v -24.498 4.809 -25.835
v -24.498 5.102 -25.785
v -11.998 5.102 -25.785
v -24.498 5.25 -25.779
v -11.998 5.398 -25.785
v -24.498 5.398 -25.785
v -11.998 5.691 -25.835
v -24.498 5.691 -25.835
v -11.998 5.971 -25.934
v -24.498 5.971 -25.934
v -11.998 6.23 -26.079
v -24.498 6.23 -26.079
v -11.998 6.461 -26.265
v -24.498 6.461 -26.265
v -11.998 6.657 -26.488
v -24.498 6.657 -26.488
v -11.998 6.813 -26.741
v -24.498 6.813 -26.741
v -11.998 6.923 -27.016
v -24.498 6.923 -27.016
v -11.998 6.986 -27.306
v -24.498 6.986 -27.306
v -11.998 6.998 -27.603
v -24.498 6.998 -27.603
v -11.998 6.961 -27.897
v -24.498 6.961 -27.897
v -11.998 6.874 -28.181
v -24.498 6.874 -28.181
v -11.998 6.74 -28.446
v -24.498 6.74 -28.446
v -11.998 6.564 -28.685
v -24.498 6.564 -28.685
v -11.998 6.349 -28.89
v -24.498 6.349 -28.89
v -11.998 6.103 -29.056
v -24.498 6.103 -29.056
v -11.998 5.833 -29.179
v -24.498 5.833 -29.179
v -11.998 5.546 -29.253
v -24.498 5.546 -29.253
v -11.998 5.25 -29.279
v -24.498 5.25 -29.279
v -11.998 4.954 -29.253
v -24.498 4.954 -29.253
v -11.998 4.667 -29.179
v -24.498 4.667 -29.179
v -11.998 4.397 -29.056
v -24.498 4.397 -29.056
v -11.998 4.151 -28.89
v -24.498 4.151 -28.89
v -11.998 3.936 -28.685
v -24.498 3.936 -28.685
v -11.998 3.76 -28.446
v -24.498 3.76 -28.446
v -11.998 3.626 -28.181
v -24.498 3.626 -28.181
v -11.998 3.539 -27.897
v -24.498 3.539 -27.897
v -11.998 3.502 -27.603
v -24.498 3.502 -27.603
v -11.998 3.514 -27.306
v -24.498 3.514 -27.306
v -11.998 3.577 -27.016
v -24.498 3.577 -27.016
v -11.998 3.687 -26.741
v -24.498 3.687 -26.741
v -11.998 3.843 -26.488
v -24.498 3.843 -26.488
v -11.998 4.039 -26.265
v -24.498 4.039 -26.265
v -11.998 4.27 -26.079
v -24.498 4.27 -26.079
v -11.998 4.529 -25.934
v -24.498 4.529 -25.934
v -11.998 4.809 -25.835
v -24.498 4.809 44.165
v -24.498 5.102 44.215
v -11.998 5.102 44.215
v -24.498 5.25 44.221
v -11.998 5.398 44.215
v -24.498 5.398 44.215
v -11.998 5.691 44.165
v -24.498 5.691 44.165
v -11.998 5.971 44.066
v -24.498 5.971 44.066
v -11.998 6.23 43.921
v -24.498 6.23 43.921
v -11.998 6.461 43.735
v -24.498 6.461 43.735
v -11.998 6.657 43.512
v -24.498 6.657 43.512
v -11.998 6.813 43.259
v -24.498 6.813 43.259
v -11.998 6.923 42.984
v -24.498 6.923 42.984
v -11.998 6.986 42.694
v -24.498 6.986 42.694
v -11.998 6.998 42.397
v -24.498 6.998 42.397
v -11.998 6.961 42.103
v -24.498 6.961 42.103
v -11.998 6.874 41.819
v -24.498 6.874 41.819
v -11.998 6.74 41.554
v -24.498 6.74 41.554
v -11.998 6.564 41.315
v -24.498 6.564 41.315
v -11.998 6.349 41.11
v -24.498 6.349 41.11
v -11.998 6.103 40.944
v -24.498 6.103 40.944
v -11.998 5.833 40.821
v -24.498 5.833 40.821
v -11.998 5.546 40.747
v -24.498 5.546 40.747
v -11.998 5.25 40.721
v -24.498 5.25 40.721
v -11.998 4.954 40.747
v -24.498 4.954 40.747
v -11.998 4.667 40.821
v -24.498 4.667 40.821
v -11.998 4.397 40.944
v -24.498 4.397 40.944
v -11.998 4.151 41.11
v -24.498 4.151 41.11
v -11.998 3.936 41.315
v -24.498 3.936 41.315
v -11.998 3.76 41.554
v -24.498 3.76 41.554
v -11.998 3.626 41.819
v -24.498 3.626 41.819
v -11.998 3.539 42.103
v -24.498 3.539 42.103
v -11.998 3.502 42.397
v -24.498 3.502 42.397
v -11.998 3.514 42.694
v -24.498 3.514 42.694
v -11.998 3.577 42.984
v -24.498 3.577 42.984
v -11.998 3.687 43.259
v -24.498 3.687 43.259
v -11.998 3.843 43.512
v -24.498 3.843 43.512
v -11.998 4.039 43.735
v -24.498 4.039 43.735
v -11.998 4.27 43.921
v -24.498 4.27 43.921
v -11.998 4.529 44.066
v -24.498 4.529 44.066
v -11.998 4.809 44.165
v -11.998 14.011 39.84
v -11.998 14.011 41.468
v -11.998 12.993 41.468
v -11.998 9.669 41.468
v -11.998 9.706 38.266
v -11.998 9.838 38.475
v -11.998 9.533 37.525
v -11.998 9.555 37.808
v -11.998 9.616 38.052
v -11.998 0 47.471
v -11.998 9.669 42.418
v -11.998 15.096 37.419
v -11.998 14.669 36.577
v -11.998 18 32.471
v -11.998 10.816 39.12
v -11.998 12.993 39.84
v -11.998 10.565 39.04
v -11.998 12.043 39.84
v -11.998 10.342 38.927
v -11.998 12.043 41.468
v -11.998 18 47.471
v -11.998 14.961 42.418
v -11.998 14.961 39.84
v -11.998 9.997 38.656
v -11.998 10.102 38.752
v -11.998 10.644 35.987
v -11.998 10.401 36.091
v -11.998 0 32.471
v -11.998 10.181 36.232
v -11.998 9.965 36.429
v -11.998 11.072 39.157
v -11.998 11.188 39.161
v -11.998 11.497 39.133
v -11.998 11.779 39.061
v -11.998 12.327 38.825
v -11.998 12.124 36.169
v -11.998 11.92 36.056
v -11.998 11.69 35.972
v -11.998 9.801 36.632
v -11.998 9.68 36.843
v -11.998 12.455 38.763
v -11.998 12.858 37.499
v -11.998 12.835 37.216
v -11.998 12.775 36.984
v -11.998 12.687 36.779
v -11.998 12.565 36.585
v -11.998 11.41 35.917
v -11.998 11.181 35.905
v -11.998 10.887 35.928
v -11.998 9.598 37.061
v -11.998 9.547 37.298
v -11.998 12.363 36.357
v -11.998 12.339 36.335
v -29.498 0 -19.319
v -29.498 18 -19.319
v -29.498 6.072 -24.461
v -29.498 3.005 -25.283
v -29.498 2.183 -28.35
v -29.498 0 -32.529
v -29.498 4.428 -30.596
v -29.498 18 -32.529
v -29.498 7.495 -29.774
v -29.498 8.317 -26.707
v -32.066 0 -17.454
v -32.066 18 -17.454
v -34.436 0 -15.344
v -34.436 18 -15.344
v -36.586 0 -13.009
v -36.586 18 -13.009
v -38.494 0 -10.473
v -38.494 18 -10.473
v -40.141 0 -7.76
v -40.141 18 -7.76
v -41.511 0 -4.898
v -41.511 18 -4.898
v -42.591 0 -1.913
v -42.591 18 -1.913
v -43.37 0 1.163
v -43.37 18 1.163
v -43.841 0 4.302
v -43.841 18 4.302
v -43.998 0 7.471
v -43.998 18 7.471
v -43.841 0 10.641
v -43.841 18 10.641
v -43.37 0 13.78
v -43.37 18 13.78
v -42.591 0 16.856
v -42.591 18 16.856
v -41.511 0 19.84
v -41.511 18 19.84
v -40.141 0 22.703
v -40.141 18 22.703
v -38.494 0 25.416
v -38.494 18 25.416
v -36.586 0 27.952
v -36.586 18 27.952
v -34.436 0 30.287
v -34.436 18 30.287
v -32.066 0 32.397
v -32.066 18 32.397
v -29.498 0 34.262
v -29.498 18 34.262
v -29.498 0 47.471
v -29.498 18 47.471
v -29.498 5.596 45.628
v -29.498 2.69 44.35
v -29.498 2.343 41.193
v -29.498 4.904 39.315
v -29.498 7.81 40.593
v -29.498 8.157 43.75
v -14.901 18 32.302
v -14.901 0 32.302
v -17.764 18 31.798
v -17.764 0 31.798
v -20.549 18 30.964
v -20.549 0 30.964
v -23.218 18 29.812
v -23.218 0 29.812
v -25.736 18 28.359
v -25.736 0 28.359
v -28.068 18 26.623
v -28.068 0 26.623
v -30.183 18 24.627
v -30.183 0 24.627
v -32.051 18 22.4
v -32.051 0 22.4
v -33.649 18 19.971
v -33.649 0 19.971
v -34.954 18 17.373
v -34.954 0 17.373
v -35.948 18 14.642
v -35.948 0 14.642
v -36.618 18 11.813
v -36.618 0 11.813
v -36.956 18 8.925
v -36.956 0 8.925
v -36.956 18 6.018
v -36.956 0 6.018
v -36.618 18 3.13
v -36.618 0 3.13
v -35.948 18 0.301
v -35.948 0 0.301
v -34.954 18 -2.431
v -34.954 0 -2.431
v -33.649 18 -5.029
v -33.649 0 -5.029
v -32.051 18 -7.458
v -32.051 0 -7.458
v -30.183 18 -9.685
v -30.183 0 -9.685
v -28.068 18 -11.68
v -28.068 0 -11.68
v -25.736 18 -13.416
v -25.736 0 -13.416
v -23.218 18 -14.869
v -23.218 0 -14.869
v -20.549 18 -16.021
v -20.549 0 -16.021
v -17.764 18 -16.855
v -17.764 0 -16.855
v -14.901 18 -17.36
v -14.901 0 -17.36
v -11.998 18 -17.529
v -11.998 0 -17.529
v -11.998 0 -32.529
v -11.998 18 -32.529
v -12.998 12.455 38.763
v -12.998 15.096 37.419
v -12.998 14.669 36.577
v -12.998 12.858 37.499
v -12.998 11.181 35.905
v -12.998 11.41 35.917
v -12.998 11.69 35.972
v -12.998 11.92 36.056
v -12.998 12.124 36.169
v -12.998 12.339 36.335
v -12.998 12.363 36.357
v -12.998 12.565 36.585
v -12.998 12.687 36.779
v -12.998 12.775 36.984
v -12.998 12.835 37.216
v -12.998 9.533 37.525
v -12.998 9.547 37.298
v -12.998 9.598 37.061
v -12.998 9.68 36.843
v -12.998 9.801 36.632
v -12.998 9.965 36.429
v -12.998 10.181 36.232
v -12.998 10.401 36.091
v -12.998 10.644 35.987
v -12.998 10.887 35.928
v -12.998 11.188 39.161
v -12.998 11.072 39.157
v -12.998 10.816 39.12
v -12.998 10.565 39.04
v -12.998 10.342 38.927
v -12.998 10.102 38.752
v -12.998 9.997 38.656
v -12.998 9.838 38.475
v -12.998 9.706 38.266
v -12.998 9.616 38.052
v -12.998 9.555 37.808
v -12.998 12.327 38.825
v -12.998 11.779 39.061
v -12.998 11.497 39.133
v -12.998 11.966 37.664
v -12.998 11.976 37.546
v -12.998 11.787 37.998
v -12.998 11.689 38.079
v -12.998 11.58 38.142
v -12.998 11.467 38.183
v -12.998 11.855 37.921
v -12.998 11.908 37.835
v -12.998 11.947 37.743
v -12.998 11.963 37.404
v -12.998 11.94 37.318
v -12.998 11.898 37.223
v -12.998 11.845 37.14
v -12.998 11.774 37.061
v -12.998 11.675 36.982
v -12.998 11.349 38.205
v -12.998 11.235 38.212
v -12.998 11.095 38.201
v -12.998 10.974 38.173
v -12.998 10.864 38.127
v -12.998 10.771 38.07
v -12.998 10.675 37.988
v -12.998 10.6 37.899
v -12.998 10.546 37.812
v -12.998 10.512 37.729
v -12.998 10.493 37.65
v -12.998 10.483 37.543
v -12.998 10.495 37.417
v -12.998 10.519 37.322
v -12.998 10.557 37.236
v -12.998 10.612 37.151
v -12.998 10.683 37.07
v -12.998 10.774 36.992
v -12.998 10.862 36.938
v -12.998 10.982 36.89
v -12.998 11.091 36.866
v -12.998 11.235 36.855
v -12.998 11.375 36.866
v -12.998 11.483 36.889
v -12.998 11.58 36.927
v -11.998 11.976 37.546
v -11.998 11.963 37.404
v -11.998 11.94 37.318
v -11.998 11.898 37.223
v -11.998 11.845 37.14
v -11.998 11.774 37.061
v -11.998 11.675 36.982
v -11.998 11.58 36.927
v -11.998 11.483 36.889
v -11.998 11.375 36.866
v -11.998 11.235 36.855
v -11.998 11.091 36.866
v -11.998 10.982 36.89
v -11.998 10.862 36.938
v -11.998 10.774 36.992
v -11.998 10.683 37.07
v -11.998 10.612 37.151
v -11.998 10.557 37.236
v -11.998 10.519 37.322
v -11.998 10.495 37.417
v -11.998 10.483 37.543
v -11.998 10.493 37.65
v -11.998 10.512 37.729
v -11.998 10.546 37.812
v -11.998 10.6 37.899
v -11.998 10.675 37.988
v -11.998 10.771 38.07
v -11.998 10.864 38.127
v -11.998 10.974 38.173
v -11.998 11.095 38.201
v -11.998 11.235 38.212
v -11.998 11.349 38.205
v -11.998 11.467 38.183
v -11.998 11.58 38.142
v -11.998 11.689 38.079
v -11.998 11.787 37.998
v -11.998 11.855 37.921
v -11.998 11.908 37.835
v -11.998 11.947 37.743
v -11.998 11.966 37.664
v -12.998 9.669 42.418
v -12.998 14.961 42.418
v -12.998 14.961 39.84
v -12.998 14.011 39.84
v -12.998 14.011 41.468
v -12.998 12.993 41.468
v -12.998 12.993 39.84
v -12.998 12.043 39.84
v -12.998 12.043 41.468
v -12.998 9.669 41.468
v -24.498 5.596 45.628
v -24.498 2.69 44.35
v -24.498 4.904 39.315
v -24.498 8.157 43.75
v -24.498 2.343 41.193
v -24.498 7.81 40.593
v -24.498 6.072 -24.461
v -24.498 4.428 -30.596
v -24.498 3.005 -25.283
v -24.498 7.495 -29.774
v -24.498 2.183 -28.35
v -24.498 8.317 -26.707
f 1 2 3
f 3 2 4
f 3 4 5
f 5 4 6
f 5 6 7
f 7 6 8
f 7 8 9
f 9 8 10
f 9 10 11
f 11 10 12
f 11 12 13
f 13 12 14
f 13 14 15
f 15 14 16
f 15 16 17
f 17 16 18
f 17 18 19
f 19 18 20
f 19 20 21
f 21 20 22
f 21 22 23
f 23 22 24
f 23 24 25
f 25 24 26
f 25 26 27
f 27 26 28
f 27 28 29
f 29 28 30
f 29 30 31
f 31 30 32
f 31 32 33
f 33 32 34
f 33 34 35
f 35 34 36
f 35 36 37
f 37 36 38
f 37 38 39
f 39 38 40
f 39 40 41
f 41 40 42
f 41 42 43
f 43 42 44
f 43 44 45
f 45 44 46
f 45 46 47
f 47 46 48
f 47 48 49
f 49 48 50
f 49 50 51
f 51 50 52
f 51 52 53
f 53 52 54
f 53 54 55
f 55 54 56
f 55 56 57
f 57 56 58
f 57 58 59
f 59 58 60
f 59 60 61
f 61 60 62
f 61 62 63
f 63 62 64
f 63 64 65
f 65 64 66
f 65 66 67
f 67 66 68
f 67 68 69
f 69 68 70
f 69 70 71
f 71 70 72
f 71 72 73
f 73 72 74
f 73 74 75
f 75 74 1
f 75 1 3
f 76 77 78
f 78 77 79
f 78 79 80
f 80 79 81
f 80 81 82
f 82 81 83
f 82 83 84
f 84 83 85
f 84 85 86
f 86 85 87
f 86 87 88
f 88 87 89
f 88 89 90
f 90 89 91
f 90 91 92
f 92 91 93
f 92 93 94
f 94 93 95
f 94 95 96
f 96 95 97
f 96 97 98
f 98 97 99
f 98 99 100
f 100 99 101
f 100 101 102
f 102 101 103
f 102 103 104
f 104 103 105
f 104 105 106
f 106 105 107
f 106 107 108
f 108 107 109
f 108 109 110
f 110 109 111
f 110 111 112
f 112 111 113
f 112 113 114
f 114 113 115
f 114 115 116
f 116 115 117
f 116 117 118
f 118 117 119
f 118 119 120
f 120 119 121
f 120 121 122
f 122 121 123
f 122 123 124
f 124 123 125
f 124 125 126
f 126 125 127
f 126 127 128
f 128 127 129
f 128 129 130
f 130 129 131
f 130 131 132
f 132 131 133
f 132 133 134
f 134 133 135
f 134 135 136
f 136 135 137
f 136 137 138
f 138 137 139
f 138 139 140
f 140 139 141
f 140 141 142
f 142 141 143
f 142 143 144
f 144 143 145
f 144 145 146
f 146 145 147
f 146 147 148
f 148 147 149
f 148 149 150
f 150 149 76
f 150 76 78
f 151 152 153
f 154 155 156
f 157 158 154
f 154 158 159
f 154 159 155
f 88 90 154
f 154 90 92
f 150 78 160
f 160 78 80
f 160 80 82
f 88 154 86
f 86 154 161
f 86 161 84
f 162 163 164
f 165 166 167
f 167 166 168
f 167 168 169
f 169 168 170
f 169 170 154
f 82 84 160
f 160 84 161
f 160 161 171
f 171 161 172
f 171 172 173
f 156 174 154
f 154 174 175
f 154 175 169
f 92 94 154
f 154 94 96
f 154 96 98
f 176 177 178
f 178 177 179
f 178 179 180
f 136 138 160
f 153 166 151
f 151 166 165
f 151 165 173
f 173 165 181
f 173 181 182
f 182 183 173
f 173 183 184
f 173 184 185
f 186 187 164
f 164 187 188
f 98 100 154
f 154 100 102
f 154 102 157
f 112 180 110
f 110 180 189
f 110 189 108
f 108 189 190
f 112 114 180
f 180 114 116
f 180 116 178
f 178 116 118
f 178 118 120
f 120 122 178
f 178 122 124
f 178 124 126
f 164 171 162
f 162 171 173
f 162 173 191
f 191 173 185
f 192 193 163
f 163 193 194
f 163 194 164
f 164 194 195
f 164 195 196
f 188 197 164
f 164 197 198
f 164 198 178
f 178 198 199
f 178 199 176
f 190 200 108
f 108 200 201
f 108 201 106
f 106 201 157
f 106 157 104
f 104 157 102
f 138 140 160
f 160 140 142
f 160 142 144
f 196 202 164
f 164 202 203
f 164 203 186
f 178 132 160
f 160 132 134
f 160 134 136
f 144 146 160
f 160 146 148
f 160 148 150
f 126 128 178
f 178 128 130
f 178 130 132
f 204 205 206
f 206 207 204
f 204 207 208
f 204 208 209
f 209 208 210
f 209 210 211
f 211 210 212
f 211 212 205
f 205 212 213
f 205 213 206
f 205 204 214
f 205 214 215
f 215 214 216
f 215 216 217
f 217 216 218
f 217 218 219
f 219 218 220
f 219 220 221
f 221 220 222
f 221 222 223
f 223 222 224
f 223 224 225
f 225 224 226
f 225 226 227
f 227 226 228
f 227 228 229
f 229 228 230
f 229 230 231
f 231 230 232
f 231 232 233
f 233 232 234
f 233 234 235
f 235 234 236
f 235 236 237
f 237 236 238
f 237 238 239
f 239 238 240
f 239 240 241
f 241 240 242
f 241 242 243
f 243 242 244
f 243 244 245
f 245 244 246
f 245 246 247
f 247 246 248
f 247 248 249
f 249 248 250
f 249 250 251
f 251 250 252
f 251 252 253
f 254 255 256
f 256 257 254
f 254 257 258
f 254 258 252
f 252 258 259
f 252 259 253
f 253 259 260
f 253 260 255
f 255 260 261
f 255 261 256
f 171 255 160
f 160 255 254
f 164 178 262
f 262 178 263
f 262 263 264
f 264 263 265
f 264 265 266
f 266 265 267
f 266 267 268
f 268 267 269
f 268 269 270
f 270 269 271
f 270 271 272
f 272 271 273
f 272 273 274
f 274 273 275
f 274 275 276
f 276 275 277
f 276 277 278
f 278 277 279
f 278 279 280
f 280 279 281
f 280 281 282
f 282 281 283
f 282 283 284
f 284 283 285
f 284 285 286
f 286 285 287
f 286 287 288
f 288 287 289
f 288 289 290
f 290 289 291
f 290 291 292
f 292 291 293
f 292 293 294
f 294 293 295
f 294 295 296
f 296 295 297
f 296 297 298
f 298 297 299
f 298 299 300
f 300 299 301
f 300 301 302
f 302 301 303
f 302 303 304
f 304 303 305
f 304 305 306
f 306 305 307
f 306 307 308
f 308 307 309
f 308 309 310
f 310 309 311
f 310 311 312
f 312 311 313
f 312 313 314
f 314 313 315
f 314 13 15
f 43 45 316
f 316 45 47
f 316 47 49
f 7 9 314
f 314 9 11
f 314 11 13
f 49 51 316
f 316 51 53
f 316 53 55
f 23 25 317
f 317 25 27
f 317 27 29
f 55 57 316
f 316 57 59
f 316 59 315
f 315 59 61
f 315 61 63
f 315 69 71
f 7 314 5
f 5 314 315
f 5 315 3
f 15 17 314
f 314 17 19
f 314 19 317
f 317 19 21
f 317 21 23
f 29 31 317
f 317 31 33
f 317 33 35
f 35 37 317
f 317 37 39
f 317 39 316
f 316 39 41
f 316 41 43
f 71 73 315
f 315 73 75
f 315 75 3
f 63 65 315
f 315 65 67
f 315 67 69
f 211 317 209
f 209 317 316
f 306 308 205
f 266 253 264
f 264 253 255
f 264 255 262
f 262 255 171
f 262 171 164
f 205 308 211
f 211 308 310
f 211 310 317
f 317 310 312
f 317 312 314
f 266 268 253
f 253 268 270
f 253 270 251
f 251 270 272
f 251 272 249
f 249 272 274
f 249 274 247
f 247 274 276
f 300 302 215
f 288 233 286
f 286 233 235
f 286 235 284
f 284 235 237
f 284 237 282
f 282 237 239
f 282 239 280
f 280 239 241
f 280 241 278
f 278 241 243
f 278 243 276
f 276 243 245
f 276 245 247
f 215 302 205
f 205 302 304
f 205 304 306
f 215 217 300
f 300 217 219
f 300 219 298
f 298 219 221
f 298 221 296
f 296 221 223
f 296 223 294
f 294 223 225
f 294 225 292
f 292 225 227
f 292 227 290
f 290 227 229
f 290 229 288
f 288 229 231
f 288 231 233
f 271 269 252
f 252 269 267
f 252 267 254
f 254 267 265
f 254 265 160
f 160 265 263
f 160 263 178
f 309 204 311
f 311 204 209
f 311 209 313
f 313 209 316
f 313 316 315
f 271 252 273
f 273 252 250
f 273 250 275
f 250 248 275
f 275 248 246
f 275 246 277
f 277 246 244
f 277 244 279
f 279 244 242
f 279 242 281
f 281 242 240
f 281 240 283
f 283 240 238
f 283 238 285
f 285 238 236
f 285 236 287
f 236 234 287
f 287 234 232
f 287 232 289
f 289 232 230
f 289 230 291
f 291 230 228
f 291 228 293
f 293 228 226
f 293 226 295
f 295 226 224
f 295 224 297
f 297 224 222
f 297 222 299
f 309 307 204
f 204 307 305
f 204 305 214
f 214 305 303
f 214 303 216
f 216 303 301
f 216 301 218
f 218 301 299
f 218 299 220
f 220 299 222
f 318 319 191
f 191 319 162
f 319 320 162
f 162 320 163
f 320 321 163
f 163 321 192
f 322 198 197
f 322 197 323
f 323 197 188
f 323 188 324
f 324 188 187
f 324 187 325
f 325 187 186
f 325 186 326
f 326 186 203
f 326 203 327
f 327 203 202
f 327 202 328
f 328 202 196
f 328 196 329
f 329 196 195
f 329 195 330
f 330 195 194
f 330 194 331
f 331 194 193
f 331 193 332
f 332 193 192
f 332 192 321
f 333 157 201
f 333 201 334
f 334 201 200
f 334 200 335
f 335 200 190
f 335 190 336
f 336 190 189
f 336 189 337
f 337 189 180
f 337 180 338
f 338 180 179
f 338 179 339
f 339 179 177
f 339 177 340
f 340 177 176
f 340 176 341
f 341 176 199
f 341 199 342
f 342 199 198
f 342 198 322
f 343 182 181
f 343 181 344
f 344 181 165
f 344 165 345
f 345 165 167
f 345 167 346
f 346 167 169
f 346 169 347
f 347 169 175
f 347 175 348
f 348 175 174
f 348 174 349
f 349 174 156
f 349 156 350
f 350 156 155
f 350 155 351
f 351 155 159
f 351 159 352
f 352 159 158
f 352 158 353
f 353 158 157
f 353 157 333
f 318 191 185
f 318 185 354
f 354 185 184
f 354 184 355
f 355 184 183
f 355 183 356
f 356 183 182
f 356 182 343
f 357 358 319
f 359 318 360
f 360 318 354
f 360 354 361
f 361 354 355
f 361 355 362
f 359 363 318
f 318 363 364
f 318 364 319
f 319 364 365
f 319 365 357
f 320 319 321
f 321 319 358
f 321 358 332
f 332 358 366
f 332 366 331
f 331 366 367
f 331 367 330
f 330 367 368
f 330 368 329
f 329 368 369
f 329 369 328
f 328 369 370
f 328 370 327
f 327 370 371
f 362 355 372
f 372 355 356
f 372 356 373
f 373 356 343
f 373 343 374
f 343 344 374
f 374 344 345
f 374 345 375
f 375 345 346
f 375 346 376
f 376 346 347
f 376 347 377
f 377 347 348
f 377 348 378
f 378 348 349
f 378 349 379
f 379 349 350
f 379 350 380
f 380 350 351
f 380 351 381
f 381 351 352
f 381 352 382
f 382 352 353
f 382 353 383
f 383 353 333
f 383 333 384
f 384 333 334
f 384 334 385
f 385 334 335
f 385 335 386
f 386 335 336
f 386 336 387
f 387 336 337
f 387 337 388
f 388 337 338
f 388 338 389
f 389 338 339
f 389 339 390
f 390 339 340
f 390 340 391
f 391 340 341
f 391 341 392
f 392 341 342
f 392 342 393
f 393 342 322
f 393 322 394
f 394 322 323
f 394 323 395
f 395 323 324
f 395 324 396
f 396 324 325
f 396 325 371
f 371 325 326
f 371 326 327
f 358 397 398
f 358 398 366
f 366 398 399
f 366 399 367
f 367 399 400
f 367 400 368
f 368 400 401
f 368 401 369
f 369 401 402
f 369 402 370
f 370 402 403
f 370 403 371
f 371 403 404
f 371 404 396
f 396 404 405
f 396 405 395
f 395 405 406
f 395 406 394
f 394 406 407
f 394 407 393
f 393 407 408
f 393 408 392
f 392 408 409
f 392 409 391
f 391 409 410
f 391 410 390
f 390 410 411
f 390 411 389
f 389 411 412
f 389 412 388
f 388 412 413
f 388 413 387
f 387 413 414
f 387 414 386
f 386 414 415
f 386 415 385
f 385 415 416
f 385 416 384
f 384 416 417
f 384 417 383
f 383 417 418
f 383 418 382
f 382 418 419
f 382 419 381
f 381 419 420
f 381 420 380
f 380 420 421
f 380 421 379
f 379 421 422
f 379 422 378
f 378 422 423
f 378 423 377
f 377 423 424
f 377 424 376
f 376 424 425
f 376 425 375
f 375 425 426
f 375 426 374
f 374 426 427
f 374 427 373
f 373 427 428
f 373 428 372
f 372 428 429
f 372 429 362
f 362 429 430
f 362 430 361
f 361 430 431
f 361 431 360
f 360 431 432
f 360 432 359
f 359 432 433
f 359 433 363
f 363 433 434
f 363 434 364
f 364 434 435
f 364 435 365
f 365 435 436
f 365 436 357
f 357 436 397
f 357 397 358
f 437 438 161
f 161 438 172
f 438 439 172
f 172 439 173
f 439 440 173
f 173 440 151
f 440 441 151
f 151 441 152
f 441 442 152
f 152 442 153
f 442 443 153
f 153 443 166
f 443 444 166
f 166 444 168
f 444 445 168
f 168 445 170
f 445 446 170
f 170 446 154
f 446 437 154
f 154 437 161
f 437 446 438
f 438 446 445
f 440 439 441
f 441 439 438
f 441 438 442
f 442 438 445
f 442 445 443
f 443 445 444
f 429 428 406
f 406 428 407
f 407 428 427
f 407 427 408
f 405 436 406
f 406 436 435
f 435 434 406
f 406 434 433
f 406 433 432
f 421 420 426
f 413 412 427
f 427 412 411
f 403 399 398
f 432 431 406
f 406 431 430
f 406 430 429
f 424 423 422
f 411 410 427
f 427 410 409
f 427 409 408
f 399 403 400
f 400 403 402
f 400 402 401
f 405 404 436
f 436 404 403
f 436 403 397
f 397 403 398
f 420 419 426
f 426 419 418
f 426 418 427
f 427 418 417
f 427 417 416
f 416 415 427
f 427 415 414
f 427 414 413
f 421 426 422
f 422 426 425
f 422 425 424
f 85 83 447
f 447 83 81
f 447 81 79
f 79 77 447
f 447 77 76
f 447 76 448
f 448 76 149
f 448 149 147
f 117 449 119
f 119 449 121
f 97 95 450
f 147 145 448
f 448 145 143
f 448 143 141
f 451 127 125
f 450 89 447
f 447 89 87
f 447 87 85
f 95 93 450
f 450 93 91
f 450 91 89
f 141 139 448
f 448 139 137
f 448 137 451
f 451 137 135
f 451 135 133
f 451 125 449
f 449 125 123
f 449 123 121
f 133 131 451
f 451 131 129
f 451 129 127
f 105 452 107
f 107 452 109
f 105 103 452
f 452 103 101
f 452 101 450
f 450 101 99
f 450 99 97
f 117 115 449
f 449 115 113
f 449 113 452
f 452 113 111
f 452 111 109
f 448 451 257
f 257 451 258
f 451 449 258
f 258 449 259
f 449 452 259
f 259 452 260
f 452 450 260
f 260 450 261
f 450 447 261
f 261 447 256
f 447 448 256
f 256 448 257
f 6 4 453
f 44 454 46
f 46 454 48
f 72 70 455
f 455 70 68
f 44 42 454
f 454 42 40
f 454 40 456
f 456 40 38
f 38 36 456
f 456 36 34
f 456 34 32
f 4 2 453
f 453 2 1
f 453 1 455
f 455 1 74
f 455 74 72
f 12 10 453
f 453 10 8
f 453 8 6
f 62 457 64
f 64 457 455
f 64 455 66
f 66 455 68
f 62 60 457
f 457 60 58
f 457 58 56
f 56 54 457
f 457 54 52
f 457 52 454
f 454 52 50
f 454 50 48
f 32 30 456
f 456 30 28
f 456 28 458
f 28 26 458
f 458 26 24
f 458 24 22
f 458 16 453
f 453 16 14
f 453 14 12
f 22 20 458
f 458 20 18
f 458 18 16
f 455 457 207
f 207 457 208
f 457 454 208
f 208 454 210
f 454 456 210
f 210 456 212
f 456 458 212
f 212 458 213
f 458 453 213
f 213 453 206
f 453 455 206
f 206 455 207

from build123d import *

# Parameters (mm, degrees)
BOSS_EXTRUDE1_DEPTH = 18
SKETCH2_R           = 1.75
CUT_EXTRUDE1_DEPTH  = 33
CUT_EXTRUDE2_DEPTH  = 1
CUT_EXTRUDE3_DEPTH  = 5


with BuildPart() as part:
    # Sketch1 → Boss-Extrude1 (new body)
    with BuildSketch(Plane(origin=(0, 0, 0), x_dir=(1, 0, 0), z_dir=(0, 1, 0))):
        with BuildLine():
            Line((-11.998275301, 32.528571429), (-29.498275301, 32.528571429))
            Line((-29.498275301, 32.528571429), (-29.498275301, 19.319428078))
            ThreePointArc((-29.498275301, 19.319428078), (-21.127694429, 23.198649785), (-11.998275301, 24.528571429))
            Line((-11.998275301, 24.528571429), (-11.998275301, 32.528571429))
        make_face()
        with BuildLine():
            ThreePointArc((-11.998275301, 24.528571429), (-21.127694429, 23.198649785), (-29.498275301, 19.319428078))
            ThreePointArc((-29.498275301, 19.319428078), (-43.998275301, -7.471428571), (-29.498275301, -34.262285221))
            ThreePointArc((-29.498275301, -34.262285221), (-21.127694429, -38.141506928), (-11.998275301, -39.471428571))
            Line((-11.998275301, -39.471428571), (-11.998275301, -32.471428571))
            ThreePointArc((-11.998275301, -32.471428571), (-36.998275301, -7.471428571), (-11.998275301, 17.528571429))
            Line((-11.998275301, 17.528571429), (-11.998275301, 24.528571429))
        make_face()
        with BuildLine():
            Line((-29.498275301, -34.262285221), (-29.498275301, -47.471428571))
            Line((-29.498275301, -47.471428571), (-11.998275301, -47.471428571))
            Line((-11.998275301, -47.471428571), (-11.998275301, -39.471428571))
            ThreePointArc((-11.998275301, -39.471428571), (-21.127694429, -38.141506928), (-29.498275301, -34.262285221))
        make_face()
    extrude(amount=BOSS_EXTRUDE1_DEPTH)

    # Sketch2 → Cut-Extrude1 (cut, through all)
    with BuildSketch(Plane(origin=(-11.998275301, 0, 0), x_dir=(0, 0, -1), z_dir=(1, 0, 0))):
        with Locations((-42.471428571, 5.25)):
            Circle(SKETCH2_R)
        with Locations((27.528571429, 5.25)):
            Circle(SKETCH2_R)
    extrude(amount=-CUT_EXTRUDE1_DEPTH, mode=Mode.SUBTRACT)

    # Sketch3 → Cut-Extrude2 (cut)
    with BuildSketch(Plane(origin=(-11.998275301, 0, 0), x_dir=(0, 0, -1), z_dir=(1, 0, 0))):
        Polygon((-42.417738354, 14.960699998), (-39.839746901, 14.960699998), (-39.839746901, 14.010913673), (-41.467952029, 14.010913673), (-41.467952029, 12.993285468), (-39.839746901, 12.993285468), (-39.839746901, 12.043499143), (-41.467952029, 12.043499143), (-41.467952029, 9.669033331), (-42.417738354, 9.669033331), align=None)
        with BuildLine():
            Line((-37.418639796, 15.096383759), (-36.576976468, 14.669191918))
            Line((-36.576976468, 14.669191918), (-37.499202029, 12.857601707))
            add(Edge.make_bspline(
                [(-37.499202029, 12.857601707), (-37.444714907, 12.856212797), (-37.337743504, 12.853486031), (-37.180235064, 12.830829794), (-37.029618939, 12.792146161), (-36.884094237, 12.740675931), (-36.745768611, 12.671572146), (-36.612417045, 12.589364414), (-36.48748866, 12.48910469), (-36.368119164, 12.378021865), (-36.259577083, 12.254958161), (-36.1652891, 12.122722275), (-36.083118786, 11.984531555), (-36.01924289, 11.837294329), (-35.967718466, 11.683451224), (-35.930541327, 11.522387264), (-35.909330729, 11.353636042), (-35.906406494, 11.238995693), (-35.904917841, 11.180635228)],
                knots=[0, 0, 0, 0, 0.000163413, 0.000320819, 0.000476106, 0.000629341, 0.000782939, 0.000939124, 0.001098386, 0.001262622, 0.001427858, 0.001589654, 0.001749279, 0.001909217, 0.002070118, 0.002235459, 0.00240428, 0.002579342, 0.002579342, 0.002579342, 0.002579342], degree=3))
            add(Edge.make_bspline(
                [(-35.904917841, 11.180635228), (-35.906312832, 11.12437928), (-35.909070131, 11.013185394), (-35.931862859, 10.849869855), (-35.968697104, 10.693178147), (-36.021340637, 10.543423201), (-36.088254824, 10.399873012), (-36.170086343, 10.262611816), (-36.267513827, 10.132665321), (-36.378020019, 10.010724), (-36.498822351, 9.899573584), (-36.626154588, 9.800776626), (-36.761095728, 9.71916659), (-36.901095226, 9.650245002), (-37.048730558, 9.598814566), (-37.201792353, 9.559993497), (-37.361441325, 9.537592055), (-37.469806956, 9.534775048), (-37.524642734, 9.533349571)],
                knots=[0, 0, 0, 0, 0.000168708, 0.000333463, 0.000493643, 0.000650875, 0.000808794, 0.000968046, 0.001129383, 0.001295239, 0.001461028, 0.001621313, 0.001777843, 0.001933346, 0.002088578, 0.00224592, 0.002406475, 0.002570947, 0.002570947, 0.002570947, 0.002570947], degree=3))
            add(Edge.make_bspline(
                [(-37.524642734, 9.533349571), (-37.581984294, 9.534519384), (-37.694738713, 9.536819664), (-37.859726647, 9.562576741), (-38.017964276, 9.601350429), (-38.168562277, 9.656712667), (-38.312457177, 9.727205977), (-38.44795487, 9.814434357), (-38.576196739, 9.917435913), (-38.695815537, 10.033893272), (-38.803583159, 10.161456375), (-38.899702871, 10.293900088), (-38.981020271, 10.431432244), (-39.046844811, 10.573905795), (-39.098202644, 10.720866743), (-39.133937221, 10.872594007), (-39.157221595, 11.028685132), (-39.159951157, 11.134617402), (-39.161328098, 11.188055433)],
                knots=[0, 0, 0, 0, 0.000171885, 0.000337989, 0.000499701, 0.000660001, 0.000818339, 0.000979478, 0.001142378, 0.001311042, 0.001479484, 0.001642759, 0.00180147, 0.001957982, 0.002112862, 0.002267641, 0.002425047, 0.002585283, 0.002585283, 0.002585283, 0.002585283], degree=3))
            add(Edge.make_bspline(
                [(-39.161328098, 11.188055433), (-39.160600549, 11.229436937), (-39.159141403, 11.312430291), (-39.144477856, 11.436708329), (-39.122184114, 11.561312585), (-39.096342748, 11.666457602), (-39.06973392, 11.755368717), (-39.042951931, 11.830611792), (-39.009761556, 11.914115152), (-38.97182004, 12.006092031), (-38.927934263, 12.106431782), (-38.878333474, 12.214860904), (-38.822894189, 12.332200505), (-38.783358344, 12.412794641), (-38.76275705, 12.454790543)],
                knots=[0, 0, 0, 0, 0.000124096, 0.000248883, 0.000374888, 0.000503693, 0.000573446, 0.000653238, 0.000743197, 0.000843003, 0.000951711, 0.001071724, 0.0012007, 0.001341029, 0.001341029, 0.001341029, 0.001341029], degree=3))
            Line((-38.76275705, 12.454790543), (-37.418639796, 15.096383759))
        make_face()
        with BuildLine():
            add(Edge.make_bspline(
                [(-37.545843322, 11.975657263), (-37.59141696, 11.973566896), (-37.680598589, 11.969476324), (-37.807401527, 11.926637853), (-37.923017038, 11.859434955), (-38.023233992, 11.765841923), (-38.107056253, 11.653994574), (-38.168651791, 11.526417732), (-38.20570493, 11.384813877), (-38.209554514, 11.285806822), (-38.211541773, 11.234696726)],
                knots=[0, 0, 0, 0, 0.000136279, 0.00026668, 0.000396852, 0.0005349, 0.000675037, 0.000813949, 0.000957414, 0.001110503, 0.001110503, 0.001110503, 0.001110503], degree=3))
            add(Edge.make_bspline(
                [(-38.211541773, 11.234696726), (-38.209188797, 11.183569611), (-38.204612101, 11.084123954), (-38.166165714, 10.941171776), (-38.103217051, 10.810697813), (-38.014935565, 10.697368244), (-37.911294369, 10.603295927), (-37.796368575, 10.533724951), (-37.672075188, 10.490985217), (-37.586098416, 10.485770403), (-37.542663234, 10.483135895)],
                knots=[0, 0, 0, 0, 0.000153173, 0.000297932, 0.000440631, 0.000585017, 0.000726133, 0.000858297, 0.000985677, 0.001115733, 0.001115733, 0.001115733, 0.001115733], degree=3))
            add(Edge.make_bspline(
                [(-37.542663234, 10.483135895), (-37.496790772, 10.485817325), (-37.406826908, 10.491076074), (-37.277048133, 10.532017398), (-37.158494443, 10.600422832), (-37.053670049, 10.694193969), (-36.963627887, 10.806230295), (-36.901327806, 10.937470644), (-36.861104027, 11.081454599), (-36.856885283, 11.182470747), (-36.854704166, 11.234696726)],
                knots=[0, 0, 0, 0, 0.000137436, 0.000269537, 0.00040391, 0.000545113, 0.000689312, 0.000832011, 0.000978068, 0.001134411, 0.001134411, 0.001134411, 0.001134411], degree=3))
            add(Edge.make_bspline(
                [(-36.854704166, 11.234696726), (-36.857188856, 11.285776979), (-36.86200075, 11.384699854), (-36.898143772, 11.526967091), (-36.962674696, 11.654052204), (-37.048393503, 11.766303611), (-37.152059393, 11.85985491), (-37.272302072, 11.927167836), (-37.40489758, 11.969400428), (-37.498176409, 11.973541243), (-37.545843322, 11.975657263)],
                knots=[0, 0, 0, 0, 0.000153173, 0.000296638, 0.000436486, 0.000577899, 0.000718308, 0.000852158, 0.000988622, 0.001131234, 0.001131234, 0.001131234, 0.001131234], degree=3))
        make_face(mode=Mode.SUBTRACT)
    extrude(amount=-CUT_EXTRUDE2_DEPTH, mode=Mode.SUBTRACT)

    # Sketch4 → Cut-Extrude3 (cut)
    with BuildSketch(Plane.ZY.offset(29.498275301)):
        Polygon((-25.283205831, 3.004634402), (-24.461344982, 6.071860849), (-26.706710579, 8.317226447), (-29.773937026, 7.495365598), (-30.595797876, 4.428139151), (-28.350432278, 2.182773553), align=None)
        Polygon((44.349661379, 2.689614315), (45.627904022, 5.596404483), (43.749671214, 8.156790168), (40.593195764, 7.810385685), (39.314953121, 4.903595517), (41.193185928, 2.343209832), align=None)
    extrude(amount=-CUT_EXTRUDE3_DEPTH, mode=Mode.SUBTRACT)


solid = part.part
